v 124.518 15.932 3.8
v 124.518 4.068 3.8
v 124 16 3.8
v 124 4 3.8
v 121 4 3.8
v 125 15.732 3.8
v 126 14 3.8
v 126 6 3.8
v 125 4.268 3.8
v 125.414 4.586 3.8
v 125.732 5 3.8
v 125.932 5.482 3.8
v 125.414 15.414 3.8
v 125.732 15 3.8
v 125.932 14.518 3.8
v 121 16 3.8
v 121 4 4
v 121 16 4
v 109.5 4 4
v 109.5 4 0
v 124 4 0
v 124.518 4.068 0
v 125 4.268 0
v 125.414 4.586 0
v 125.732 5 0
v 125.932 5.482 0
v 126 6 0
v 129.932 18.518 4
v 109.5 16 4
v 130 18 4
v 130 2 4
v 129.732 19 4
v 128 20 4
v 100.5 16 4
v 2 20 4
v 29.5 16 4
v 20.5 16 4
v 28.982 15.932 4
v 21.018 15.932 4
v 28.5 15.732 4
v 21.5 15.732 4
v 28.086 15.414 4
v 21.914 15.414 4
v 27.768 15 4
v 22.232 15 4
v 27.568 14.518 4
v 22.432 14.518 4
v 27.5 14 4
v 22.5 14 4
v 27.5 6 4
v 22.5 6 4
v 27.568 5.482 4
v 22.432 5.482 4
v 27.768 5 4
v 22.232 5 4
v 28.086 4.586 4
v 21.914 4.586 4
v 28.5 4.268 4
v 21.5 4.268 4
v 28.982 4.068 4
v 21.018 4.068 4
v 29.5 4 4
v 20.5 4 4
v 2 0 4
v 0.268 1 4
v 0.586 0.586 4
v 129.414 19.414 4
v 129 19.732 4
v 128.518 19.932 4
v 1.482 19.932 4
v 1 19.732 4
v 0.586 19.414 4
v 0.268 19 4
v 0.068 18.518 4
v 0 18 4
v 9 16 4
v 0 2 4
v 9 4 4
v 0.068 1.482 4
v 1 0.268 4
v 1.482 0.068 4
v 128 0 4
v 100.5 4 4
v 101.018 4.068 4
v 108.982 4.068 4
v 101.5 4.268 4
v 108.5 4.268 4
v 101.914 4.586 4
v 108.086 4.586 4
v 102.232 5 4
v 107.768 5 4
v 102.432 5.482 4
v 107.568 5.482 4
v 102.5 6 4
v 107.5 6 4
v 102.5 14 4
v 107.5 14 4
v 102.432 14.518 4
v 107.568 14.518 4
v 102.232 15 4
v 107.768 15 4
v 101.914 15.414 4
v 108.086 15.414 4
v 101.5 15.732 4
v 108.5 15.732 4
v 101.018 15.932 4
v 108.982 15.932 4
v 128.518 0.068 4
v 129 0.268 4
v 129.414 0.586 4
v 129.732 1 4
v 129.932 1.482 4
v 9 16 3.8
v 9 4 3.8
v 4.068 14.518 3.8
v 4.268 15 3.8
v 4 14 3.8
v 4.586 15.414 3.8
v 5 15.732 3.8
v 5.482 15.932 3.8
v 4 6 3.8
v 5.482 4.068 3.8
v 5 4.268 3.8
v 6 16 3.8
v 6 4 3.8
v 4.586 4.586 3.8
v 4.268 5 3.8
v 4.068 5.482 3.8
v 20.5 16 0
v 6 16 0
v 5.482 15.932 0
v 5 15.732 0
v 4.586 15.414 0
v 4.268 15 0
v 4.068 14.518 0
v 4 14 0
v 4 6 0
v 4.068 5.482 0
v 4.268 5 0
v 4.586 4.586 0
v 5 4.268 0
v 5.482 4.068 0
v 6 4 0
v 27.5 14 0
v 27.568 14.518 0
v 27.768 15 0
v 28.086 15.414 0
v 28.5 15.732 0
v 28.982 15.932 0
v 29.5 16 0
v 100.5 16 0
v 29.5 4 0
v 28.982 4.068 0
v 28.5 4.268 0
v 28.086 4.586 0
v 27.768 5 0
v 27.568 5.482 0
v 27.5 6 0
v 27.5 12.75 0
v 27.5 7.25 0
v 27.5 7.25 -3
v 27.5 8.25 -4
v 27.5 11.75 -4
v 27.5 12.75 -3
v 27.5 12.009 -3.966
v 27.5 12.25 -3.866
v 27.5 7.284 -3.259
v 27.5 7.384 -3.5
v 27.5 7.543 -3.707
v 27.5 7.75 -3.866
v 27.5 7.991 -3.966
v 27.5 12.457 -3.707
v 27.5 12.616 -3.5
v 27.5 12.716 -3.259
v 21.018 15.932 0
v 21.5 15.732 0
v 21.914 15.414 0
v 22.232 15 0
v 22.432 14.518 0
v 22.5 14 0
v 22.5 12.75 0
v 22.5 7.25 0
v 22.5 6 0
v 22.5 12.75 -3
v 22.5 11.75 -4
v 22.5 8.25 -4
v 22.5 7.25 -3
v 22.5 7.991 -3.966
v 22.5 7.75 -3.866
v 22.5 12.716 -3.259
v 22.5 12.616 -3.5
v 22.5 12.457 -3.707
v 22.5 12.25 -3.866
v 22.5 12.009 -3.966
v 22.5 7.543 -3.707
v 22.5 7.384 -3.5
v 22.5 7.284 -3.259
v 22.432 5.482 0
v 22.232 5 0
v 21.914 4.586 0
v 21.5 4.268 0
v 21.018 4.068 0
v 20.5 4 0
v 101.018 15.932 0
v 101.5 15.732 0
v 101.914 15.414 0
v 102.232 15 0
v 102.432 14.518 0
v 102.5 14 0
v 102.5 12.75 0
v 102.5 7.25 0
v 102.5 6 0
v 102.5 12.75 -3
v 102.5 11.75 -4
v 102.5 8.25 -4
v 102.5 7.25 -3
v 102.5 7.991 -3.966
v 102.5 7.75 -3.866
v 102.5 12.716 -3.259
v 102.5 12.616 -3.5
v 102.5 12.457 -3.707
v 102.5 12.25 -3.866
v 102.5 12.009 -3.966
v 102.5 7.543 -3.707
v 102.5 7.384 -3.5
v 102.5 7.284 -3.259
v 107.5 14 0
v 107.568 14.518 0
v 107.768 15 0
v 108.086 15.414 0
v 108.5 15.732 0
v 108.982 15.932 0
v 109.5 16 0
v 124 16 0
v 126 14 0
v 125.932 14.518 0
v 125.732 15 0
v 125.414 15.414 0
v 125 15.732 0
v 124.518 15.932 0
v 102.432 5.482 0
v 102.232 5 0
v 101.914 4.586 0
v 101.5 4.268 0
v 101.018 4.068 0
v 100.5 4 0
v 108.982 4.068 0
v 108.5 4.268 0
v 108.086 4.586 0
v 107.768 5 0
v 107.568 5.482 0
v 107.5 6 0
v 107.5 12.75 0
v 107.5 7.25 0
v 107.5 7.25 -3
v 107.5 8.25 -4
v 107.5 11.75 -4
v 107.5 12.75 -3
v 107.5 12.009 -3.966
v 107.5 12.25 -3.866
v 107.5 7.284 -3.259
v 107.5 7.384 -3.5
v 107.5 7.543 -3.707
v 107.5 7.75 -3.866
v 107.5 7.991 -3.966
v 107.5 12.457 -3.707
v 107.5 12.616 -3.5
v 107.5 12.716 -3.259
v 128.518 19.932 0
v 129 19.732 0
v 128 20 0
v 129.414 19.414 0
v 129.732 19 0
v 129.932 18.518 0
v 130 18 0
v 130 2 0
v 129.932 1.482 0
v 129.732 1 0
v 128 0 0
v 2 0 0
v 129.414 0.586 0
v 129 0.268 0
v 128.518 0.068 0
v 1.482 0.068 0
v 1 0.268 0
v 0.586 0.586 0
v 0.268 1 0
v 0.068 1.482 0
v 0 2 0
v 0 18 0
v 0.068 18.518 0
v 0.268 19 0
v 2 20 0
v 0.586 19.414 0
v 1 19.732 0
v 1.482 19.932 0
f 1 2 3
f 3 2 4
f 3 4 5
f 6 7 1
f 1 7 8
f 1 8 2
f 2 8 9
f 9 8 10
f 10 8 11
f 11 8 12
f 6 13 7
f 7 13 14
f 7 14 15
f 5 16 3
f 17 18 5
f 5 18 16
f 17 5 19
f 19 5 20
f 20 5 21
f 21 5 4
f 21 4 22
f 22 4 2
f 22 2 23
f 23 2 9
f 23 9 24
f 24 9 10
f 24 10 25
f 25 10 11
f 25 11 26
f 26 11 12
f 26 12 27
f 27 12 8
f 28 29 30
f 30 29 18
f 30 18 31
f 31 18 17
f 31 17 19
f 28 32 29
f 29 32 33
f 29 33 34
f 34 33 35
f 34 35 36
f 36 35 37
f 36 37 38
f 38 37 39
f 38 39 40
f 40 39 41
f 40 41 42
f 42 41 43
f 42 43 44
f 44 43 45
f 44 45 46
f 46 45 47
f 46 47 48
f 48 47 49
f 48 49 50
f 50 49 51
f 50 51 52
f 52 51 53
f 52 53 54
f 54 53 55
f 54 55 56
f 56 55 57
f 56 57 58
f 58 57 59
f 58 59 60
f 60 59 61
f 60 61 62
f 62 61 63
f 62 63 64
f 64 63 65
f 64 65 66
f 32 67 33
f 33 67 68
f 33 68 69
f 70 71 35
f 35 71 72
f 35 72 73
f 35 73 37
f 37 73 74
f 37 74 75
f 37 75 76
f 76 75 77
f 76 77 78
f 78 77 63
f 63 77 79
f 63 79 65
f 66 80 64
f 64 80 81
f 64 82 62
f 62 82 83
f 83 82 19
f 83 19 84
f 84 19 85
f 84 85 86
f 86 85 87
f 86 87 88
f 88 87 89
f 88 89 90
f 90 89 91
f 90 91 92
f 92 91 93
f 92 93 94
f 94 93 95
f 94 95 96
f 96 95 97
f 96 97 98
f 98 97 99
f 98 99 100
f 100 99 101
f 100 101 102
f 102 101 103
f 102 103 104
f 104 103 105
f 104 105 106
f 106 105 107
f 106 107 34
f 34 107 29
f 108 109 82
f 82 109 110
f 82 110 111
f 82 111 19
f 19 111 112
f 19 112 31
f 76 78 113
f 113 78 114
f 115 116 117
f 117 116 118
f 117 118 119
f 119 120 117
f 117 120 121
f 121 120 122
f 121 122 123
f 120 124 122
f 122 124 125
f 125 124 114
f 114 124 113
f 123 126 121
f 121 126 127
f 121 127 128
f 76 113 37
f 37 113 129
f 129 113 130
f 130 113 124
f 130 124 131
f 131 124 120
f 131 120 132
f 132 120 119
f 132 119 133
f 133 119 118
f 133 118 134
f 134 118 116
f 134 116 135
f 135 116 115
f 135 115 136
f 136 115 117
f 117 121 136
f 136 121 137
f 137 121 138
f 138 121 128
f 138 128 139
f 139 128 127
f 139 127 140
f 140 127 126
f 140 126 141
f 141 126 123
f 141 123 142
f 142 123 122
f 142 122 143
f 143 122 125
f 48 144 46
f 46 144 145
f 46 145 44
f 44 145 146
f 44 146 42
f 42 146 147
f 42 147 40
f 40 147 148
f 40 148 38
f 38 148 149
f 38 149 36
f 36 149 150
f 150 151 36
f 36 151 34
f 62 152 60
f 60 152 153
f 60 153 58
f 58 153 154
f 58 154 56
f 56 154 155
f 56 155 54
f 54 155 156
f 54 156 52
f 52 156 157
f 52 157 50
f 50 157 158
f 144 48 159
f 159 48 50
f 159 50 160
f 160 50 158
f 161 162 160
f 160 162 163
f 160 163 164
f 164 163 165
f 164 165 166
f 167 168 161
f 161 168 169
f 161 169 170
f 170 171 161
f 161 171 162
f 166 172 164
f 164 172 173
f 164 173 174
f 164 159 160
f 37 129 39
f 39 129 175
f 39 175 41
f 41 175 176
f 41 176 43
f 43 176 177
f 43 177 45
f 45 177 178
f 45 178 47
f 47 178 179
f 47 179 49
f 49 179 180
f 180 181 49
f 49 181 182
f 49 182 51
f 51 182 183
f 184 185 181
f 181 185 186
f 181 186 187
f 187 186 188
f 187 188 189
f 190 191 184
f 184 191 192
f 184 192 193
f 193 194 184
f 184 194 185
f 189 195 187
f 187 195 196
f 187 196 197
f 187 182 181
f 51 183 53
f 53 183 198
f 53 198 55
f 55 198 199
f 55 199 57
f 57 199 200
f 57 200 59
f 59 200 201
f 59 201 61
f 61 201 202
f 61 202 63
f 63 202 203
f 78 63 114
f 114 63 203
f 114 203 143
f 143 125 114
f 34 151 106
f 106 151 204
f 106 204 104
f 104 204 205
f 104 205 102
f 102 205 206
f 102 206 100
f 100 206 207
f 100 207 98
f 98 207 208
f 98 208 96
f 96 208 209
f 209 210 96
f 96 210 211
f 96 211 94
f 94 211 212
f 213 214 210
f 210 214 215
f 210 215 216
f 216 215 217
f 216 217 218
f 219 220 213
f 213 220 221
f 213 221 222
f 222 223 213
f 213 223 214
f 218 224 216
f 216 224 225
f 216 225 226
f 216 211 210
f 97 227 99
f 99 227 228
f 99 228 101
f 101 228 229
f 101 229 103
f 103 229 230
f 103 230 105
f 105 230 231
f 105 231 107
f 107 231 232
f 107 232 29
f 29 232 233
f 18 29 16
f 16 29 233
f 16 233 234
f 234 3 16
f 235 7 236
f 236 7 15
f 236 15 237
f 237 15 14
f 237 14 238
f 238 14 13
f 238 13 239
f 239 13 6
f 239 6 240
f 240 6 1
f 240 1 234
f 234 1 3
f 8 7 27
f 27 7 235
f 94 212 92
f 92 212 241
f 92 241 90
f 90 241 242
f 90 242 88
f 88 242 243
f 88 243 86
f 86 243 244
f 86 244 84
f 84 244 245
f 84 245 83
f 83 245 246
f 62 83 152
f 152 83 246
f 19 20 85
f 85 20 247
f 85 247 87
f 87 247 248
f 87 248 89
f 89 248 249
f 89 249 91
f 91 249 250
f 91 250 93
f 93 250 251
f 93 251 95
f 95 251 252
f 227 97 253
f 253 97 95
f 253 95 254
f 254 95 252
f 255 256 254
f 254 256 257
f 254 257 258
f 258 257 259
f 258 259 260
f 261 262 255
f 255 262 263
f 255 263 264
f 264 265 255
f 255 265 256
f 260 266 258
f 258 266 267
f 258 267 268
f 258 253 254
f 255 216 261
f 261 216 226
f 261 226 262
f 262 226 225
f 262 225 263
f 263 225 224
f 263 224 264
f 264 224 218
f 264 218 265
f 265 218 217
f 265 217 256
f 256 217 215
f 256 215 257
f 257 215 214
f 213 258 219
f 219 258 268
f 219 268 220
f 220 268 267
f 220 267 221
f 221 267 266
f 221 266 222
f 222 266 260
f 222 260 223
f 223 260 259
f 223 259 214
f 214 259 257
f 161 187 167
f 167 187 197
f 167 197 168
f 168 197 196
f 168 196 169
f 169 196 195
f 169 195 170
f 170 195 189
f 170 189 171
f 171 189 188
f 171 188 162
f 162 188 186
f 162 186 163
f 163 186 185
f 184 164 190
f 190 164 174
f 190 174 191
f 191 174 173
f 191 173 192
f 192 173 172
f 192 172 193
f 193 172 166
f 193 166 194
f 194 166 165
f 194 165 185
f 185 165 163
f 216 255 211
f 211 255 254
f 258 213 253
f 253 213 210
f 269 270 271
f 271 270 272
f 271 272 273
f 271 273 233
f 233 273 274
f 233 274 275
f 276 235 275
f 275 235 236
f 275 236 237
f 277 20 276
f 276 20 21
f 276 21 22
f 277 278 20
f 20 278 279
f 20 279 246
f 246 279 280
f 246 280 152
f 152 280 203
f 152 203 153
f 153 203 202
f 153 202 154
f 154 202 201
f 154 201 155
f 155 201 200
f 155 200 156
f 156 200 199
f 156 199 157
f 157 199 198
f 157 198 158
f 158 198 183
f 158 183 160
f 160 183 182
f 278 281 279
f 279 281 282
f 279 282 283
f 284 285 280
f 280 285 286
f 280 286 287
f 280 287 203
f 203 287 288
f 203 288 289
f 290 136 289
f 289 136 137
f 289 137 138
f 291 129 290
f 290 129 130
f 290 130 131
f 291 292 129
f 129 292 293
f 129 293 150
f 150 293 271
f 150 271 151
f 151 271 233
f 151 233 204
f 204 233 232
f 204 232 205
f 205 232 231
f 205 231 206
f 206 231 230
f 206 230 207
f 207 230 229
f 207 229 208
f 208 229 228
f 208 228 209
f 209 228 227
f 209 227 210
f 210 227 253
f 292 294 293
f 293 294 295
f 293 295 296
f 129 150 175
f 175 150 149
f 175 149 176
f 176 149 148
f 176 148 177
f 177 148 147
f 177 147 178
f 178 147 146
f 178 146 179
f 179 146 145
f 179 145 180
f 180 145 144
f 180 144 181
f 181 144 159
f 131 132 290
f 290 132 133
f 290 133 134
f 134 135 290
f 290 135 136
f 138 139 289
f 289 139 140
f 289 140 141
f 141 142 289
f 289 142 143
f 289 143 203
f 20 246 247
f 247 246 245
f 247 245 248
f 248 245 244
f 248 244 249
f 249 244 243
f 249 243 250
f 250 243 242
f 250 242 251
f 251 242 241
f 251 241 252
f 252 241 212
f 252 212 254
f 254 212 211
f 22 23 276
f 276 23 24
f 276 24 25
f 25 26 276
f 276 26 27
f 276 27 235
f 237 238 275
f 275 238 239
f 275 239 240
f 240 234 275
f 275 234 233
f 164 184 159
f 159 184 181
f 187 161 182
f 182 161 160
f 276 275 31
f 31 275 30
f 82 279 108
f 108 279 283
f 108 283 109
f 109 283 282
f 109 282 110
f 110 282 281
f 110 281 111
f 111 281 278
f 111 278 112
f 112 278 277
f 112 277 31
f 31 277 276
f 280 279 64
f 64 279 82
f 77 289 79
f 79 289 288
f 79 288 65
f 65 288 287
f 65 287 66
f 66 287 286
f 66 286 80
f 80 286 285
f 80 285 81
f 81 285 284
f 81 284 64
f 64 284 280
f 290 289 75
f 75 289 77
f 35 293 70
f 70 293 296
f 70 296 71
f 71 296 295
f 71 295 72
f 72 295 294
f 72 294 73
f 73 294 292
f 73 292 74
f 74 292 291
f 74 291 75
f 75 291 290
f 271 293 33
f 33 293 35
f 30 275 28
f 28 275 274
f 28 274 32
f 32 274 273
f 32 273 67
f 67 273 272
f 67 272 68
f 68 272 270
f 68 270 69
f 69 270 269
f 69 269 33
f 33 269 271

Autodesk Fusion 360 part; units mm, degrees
sketch "Sketch1" plane through (0, 0, 0) normal (0, 0, 1) x (1, 0, 0)
  line L0 (2, 0) -> (128, 0)
  line L1 (130, 2) -> (130, 18)
  line L2 (128, 20) -> (2, 20)
  line L3 (0, 18) -> (0, 2)
  arc A0 (2, 20) -> (0, 18) centre (2, 18) ccw
  arc A1 (0, 2) -> (2, 0) centre (2, 2) ccw
  arc A2 (128, 0) -> (130, 2) centre (128, 2) ccw
  arc A3 (130, 18) -> (128, 20) centre (128, 18) ccw
  line L4 (4, 4) -> (126, 4)
  line L5 (126, 4) -> (126, 16)
  line L6 (126, 16) -> (4, 16)
  line L7 (4, 16) -> (4, 4)
  line L8 (22.5, 16) -> (27.5, 16)
  line L9 (27.5, 16) -> (27.5, 4)
  line L10 (27.5, 4) -> (22.5, 4)
  line L11 (22.5, 4) -> (22.5, 16)
  line L12 (65, 0) -> (65, 20) construction
  line L13 (107.5, 4) -> (107.5, 16)
  line L14 (107.5, 16) -> (102.5, 16)
  line L15 (102.5, 4) -> (107.5, 4)
  line L16 (102.5, 16) -> (102.5, 4)
  line L17 (22.5, 12.75) -> (107.5, 12.75)
  line L18 (107.5, 12.75) -> (107.5, 7.25)
  line L19 (107.5, 7.25) -> (22.5, 7.25)
  line L20 (22.5, 7.25) -> (22.5, 12.75)
  line L21 (22.5, 12.75) -> (107.5, 7.25) construction
  line L22 (107.5, 12.75) -> (22.5, 7.25) construction
  line L23 (9, 4) -> (9, 16)
  line L24 (121, 4) -> (121, 16)
  point P0 (130, 0)
  point P1 (0, 20)
  point P2 (65, 10)
  dimension "d1" = 130
  dimension "d2" = 20
  dimension "d3" = 2
  dimension "d4" = -4
  dimension "d5" = 5
  dimension "d7" = 80
  dimension "d16" = 5.5
  dimension "d23" = 5
  dimension "d24" = 5
extrude "Extrude1" add sketch "Sketch1" along normal blind 4 contours L0 L1 L2 L3 A0 A1 A2 A3 | L4 L9 L10 L11 L19 | L9 L11 L17 L19 L20 | L6 L8 L9 L11 L17 | L4 L13 L15 L16 L19 | L13 L16 L17 L18 L19 | L6 L13 L14 L16 L17
extrude "Extrude3" add sketch "Sketch1" against normal blind 4 contours L9 L11 L17 L19 L20 | L13 L16 L17 L18 L19
fillet "Fillet1" radius 1 4 edges at (25, 12.75, -4) (25, 7.25, -4) (105, 12.75, -4) (105, 7.25, -4)
fillet "Fillet2" radius 2 12 edges at (126, 4, 2) (107.5, 4, 2) (102.5, 4, 2) (126, 16, 2) (107.5, 16, 2) (102.5, 16, 2) (22.5, 4, 2) (4, 4, 2) (4, 16, 2) (22.5, 16, 2) (27.5, 4, 2) (27.5, 16, 2)
extrude "Extrude4" add sketch "Sketch1" against normal blind 0.2 from surface at 4 contours L4 L6 L7 L23 | L4 L5 L6 L24
